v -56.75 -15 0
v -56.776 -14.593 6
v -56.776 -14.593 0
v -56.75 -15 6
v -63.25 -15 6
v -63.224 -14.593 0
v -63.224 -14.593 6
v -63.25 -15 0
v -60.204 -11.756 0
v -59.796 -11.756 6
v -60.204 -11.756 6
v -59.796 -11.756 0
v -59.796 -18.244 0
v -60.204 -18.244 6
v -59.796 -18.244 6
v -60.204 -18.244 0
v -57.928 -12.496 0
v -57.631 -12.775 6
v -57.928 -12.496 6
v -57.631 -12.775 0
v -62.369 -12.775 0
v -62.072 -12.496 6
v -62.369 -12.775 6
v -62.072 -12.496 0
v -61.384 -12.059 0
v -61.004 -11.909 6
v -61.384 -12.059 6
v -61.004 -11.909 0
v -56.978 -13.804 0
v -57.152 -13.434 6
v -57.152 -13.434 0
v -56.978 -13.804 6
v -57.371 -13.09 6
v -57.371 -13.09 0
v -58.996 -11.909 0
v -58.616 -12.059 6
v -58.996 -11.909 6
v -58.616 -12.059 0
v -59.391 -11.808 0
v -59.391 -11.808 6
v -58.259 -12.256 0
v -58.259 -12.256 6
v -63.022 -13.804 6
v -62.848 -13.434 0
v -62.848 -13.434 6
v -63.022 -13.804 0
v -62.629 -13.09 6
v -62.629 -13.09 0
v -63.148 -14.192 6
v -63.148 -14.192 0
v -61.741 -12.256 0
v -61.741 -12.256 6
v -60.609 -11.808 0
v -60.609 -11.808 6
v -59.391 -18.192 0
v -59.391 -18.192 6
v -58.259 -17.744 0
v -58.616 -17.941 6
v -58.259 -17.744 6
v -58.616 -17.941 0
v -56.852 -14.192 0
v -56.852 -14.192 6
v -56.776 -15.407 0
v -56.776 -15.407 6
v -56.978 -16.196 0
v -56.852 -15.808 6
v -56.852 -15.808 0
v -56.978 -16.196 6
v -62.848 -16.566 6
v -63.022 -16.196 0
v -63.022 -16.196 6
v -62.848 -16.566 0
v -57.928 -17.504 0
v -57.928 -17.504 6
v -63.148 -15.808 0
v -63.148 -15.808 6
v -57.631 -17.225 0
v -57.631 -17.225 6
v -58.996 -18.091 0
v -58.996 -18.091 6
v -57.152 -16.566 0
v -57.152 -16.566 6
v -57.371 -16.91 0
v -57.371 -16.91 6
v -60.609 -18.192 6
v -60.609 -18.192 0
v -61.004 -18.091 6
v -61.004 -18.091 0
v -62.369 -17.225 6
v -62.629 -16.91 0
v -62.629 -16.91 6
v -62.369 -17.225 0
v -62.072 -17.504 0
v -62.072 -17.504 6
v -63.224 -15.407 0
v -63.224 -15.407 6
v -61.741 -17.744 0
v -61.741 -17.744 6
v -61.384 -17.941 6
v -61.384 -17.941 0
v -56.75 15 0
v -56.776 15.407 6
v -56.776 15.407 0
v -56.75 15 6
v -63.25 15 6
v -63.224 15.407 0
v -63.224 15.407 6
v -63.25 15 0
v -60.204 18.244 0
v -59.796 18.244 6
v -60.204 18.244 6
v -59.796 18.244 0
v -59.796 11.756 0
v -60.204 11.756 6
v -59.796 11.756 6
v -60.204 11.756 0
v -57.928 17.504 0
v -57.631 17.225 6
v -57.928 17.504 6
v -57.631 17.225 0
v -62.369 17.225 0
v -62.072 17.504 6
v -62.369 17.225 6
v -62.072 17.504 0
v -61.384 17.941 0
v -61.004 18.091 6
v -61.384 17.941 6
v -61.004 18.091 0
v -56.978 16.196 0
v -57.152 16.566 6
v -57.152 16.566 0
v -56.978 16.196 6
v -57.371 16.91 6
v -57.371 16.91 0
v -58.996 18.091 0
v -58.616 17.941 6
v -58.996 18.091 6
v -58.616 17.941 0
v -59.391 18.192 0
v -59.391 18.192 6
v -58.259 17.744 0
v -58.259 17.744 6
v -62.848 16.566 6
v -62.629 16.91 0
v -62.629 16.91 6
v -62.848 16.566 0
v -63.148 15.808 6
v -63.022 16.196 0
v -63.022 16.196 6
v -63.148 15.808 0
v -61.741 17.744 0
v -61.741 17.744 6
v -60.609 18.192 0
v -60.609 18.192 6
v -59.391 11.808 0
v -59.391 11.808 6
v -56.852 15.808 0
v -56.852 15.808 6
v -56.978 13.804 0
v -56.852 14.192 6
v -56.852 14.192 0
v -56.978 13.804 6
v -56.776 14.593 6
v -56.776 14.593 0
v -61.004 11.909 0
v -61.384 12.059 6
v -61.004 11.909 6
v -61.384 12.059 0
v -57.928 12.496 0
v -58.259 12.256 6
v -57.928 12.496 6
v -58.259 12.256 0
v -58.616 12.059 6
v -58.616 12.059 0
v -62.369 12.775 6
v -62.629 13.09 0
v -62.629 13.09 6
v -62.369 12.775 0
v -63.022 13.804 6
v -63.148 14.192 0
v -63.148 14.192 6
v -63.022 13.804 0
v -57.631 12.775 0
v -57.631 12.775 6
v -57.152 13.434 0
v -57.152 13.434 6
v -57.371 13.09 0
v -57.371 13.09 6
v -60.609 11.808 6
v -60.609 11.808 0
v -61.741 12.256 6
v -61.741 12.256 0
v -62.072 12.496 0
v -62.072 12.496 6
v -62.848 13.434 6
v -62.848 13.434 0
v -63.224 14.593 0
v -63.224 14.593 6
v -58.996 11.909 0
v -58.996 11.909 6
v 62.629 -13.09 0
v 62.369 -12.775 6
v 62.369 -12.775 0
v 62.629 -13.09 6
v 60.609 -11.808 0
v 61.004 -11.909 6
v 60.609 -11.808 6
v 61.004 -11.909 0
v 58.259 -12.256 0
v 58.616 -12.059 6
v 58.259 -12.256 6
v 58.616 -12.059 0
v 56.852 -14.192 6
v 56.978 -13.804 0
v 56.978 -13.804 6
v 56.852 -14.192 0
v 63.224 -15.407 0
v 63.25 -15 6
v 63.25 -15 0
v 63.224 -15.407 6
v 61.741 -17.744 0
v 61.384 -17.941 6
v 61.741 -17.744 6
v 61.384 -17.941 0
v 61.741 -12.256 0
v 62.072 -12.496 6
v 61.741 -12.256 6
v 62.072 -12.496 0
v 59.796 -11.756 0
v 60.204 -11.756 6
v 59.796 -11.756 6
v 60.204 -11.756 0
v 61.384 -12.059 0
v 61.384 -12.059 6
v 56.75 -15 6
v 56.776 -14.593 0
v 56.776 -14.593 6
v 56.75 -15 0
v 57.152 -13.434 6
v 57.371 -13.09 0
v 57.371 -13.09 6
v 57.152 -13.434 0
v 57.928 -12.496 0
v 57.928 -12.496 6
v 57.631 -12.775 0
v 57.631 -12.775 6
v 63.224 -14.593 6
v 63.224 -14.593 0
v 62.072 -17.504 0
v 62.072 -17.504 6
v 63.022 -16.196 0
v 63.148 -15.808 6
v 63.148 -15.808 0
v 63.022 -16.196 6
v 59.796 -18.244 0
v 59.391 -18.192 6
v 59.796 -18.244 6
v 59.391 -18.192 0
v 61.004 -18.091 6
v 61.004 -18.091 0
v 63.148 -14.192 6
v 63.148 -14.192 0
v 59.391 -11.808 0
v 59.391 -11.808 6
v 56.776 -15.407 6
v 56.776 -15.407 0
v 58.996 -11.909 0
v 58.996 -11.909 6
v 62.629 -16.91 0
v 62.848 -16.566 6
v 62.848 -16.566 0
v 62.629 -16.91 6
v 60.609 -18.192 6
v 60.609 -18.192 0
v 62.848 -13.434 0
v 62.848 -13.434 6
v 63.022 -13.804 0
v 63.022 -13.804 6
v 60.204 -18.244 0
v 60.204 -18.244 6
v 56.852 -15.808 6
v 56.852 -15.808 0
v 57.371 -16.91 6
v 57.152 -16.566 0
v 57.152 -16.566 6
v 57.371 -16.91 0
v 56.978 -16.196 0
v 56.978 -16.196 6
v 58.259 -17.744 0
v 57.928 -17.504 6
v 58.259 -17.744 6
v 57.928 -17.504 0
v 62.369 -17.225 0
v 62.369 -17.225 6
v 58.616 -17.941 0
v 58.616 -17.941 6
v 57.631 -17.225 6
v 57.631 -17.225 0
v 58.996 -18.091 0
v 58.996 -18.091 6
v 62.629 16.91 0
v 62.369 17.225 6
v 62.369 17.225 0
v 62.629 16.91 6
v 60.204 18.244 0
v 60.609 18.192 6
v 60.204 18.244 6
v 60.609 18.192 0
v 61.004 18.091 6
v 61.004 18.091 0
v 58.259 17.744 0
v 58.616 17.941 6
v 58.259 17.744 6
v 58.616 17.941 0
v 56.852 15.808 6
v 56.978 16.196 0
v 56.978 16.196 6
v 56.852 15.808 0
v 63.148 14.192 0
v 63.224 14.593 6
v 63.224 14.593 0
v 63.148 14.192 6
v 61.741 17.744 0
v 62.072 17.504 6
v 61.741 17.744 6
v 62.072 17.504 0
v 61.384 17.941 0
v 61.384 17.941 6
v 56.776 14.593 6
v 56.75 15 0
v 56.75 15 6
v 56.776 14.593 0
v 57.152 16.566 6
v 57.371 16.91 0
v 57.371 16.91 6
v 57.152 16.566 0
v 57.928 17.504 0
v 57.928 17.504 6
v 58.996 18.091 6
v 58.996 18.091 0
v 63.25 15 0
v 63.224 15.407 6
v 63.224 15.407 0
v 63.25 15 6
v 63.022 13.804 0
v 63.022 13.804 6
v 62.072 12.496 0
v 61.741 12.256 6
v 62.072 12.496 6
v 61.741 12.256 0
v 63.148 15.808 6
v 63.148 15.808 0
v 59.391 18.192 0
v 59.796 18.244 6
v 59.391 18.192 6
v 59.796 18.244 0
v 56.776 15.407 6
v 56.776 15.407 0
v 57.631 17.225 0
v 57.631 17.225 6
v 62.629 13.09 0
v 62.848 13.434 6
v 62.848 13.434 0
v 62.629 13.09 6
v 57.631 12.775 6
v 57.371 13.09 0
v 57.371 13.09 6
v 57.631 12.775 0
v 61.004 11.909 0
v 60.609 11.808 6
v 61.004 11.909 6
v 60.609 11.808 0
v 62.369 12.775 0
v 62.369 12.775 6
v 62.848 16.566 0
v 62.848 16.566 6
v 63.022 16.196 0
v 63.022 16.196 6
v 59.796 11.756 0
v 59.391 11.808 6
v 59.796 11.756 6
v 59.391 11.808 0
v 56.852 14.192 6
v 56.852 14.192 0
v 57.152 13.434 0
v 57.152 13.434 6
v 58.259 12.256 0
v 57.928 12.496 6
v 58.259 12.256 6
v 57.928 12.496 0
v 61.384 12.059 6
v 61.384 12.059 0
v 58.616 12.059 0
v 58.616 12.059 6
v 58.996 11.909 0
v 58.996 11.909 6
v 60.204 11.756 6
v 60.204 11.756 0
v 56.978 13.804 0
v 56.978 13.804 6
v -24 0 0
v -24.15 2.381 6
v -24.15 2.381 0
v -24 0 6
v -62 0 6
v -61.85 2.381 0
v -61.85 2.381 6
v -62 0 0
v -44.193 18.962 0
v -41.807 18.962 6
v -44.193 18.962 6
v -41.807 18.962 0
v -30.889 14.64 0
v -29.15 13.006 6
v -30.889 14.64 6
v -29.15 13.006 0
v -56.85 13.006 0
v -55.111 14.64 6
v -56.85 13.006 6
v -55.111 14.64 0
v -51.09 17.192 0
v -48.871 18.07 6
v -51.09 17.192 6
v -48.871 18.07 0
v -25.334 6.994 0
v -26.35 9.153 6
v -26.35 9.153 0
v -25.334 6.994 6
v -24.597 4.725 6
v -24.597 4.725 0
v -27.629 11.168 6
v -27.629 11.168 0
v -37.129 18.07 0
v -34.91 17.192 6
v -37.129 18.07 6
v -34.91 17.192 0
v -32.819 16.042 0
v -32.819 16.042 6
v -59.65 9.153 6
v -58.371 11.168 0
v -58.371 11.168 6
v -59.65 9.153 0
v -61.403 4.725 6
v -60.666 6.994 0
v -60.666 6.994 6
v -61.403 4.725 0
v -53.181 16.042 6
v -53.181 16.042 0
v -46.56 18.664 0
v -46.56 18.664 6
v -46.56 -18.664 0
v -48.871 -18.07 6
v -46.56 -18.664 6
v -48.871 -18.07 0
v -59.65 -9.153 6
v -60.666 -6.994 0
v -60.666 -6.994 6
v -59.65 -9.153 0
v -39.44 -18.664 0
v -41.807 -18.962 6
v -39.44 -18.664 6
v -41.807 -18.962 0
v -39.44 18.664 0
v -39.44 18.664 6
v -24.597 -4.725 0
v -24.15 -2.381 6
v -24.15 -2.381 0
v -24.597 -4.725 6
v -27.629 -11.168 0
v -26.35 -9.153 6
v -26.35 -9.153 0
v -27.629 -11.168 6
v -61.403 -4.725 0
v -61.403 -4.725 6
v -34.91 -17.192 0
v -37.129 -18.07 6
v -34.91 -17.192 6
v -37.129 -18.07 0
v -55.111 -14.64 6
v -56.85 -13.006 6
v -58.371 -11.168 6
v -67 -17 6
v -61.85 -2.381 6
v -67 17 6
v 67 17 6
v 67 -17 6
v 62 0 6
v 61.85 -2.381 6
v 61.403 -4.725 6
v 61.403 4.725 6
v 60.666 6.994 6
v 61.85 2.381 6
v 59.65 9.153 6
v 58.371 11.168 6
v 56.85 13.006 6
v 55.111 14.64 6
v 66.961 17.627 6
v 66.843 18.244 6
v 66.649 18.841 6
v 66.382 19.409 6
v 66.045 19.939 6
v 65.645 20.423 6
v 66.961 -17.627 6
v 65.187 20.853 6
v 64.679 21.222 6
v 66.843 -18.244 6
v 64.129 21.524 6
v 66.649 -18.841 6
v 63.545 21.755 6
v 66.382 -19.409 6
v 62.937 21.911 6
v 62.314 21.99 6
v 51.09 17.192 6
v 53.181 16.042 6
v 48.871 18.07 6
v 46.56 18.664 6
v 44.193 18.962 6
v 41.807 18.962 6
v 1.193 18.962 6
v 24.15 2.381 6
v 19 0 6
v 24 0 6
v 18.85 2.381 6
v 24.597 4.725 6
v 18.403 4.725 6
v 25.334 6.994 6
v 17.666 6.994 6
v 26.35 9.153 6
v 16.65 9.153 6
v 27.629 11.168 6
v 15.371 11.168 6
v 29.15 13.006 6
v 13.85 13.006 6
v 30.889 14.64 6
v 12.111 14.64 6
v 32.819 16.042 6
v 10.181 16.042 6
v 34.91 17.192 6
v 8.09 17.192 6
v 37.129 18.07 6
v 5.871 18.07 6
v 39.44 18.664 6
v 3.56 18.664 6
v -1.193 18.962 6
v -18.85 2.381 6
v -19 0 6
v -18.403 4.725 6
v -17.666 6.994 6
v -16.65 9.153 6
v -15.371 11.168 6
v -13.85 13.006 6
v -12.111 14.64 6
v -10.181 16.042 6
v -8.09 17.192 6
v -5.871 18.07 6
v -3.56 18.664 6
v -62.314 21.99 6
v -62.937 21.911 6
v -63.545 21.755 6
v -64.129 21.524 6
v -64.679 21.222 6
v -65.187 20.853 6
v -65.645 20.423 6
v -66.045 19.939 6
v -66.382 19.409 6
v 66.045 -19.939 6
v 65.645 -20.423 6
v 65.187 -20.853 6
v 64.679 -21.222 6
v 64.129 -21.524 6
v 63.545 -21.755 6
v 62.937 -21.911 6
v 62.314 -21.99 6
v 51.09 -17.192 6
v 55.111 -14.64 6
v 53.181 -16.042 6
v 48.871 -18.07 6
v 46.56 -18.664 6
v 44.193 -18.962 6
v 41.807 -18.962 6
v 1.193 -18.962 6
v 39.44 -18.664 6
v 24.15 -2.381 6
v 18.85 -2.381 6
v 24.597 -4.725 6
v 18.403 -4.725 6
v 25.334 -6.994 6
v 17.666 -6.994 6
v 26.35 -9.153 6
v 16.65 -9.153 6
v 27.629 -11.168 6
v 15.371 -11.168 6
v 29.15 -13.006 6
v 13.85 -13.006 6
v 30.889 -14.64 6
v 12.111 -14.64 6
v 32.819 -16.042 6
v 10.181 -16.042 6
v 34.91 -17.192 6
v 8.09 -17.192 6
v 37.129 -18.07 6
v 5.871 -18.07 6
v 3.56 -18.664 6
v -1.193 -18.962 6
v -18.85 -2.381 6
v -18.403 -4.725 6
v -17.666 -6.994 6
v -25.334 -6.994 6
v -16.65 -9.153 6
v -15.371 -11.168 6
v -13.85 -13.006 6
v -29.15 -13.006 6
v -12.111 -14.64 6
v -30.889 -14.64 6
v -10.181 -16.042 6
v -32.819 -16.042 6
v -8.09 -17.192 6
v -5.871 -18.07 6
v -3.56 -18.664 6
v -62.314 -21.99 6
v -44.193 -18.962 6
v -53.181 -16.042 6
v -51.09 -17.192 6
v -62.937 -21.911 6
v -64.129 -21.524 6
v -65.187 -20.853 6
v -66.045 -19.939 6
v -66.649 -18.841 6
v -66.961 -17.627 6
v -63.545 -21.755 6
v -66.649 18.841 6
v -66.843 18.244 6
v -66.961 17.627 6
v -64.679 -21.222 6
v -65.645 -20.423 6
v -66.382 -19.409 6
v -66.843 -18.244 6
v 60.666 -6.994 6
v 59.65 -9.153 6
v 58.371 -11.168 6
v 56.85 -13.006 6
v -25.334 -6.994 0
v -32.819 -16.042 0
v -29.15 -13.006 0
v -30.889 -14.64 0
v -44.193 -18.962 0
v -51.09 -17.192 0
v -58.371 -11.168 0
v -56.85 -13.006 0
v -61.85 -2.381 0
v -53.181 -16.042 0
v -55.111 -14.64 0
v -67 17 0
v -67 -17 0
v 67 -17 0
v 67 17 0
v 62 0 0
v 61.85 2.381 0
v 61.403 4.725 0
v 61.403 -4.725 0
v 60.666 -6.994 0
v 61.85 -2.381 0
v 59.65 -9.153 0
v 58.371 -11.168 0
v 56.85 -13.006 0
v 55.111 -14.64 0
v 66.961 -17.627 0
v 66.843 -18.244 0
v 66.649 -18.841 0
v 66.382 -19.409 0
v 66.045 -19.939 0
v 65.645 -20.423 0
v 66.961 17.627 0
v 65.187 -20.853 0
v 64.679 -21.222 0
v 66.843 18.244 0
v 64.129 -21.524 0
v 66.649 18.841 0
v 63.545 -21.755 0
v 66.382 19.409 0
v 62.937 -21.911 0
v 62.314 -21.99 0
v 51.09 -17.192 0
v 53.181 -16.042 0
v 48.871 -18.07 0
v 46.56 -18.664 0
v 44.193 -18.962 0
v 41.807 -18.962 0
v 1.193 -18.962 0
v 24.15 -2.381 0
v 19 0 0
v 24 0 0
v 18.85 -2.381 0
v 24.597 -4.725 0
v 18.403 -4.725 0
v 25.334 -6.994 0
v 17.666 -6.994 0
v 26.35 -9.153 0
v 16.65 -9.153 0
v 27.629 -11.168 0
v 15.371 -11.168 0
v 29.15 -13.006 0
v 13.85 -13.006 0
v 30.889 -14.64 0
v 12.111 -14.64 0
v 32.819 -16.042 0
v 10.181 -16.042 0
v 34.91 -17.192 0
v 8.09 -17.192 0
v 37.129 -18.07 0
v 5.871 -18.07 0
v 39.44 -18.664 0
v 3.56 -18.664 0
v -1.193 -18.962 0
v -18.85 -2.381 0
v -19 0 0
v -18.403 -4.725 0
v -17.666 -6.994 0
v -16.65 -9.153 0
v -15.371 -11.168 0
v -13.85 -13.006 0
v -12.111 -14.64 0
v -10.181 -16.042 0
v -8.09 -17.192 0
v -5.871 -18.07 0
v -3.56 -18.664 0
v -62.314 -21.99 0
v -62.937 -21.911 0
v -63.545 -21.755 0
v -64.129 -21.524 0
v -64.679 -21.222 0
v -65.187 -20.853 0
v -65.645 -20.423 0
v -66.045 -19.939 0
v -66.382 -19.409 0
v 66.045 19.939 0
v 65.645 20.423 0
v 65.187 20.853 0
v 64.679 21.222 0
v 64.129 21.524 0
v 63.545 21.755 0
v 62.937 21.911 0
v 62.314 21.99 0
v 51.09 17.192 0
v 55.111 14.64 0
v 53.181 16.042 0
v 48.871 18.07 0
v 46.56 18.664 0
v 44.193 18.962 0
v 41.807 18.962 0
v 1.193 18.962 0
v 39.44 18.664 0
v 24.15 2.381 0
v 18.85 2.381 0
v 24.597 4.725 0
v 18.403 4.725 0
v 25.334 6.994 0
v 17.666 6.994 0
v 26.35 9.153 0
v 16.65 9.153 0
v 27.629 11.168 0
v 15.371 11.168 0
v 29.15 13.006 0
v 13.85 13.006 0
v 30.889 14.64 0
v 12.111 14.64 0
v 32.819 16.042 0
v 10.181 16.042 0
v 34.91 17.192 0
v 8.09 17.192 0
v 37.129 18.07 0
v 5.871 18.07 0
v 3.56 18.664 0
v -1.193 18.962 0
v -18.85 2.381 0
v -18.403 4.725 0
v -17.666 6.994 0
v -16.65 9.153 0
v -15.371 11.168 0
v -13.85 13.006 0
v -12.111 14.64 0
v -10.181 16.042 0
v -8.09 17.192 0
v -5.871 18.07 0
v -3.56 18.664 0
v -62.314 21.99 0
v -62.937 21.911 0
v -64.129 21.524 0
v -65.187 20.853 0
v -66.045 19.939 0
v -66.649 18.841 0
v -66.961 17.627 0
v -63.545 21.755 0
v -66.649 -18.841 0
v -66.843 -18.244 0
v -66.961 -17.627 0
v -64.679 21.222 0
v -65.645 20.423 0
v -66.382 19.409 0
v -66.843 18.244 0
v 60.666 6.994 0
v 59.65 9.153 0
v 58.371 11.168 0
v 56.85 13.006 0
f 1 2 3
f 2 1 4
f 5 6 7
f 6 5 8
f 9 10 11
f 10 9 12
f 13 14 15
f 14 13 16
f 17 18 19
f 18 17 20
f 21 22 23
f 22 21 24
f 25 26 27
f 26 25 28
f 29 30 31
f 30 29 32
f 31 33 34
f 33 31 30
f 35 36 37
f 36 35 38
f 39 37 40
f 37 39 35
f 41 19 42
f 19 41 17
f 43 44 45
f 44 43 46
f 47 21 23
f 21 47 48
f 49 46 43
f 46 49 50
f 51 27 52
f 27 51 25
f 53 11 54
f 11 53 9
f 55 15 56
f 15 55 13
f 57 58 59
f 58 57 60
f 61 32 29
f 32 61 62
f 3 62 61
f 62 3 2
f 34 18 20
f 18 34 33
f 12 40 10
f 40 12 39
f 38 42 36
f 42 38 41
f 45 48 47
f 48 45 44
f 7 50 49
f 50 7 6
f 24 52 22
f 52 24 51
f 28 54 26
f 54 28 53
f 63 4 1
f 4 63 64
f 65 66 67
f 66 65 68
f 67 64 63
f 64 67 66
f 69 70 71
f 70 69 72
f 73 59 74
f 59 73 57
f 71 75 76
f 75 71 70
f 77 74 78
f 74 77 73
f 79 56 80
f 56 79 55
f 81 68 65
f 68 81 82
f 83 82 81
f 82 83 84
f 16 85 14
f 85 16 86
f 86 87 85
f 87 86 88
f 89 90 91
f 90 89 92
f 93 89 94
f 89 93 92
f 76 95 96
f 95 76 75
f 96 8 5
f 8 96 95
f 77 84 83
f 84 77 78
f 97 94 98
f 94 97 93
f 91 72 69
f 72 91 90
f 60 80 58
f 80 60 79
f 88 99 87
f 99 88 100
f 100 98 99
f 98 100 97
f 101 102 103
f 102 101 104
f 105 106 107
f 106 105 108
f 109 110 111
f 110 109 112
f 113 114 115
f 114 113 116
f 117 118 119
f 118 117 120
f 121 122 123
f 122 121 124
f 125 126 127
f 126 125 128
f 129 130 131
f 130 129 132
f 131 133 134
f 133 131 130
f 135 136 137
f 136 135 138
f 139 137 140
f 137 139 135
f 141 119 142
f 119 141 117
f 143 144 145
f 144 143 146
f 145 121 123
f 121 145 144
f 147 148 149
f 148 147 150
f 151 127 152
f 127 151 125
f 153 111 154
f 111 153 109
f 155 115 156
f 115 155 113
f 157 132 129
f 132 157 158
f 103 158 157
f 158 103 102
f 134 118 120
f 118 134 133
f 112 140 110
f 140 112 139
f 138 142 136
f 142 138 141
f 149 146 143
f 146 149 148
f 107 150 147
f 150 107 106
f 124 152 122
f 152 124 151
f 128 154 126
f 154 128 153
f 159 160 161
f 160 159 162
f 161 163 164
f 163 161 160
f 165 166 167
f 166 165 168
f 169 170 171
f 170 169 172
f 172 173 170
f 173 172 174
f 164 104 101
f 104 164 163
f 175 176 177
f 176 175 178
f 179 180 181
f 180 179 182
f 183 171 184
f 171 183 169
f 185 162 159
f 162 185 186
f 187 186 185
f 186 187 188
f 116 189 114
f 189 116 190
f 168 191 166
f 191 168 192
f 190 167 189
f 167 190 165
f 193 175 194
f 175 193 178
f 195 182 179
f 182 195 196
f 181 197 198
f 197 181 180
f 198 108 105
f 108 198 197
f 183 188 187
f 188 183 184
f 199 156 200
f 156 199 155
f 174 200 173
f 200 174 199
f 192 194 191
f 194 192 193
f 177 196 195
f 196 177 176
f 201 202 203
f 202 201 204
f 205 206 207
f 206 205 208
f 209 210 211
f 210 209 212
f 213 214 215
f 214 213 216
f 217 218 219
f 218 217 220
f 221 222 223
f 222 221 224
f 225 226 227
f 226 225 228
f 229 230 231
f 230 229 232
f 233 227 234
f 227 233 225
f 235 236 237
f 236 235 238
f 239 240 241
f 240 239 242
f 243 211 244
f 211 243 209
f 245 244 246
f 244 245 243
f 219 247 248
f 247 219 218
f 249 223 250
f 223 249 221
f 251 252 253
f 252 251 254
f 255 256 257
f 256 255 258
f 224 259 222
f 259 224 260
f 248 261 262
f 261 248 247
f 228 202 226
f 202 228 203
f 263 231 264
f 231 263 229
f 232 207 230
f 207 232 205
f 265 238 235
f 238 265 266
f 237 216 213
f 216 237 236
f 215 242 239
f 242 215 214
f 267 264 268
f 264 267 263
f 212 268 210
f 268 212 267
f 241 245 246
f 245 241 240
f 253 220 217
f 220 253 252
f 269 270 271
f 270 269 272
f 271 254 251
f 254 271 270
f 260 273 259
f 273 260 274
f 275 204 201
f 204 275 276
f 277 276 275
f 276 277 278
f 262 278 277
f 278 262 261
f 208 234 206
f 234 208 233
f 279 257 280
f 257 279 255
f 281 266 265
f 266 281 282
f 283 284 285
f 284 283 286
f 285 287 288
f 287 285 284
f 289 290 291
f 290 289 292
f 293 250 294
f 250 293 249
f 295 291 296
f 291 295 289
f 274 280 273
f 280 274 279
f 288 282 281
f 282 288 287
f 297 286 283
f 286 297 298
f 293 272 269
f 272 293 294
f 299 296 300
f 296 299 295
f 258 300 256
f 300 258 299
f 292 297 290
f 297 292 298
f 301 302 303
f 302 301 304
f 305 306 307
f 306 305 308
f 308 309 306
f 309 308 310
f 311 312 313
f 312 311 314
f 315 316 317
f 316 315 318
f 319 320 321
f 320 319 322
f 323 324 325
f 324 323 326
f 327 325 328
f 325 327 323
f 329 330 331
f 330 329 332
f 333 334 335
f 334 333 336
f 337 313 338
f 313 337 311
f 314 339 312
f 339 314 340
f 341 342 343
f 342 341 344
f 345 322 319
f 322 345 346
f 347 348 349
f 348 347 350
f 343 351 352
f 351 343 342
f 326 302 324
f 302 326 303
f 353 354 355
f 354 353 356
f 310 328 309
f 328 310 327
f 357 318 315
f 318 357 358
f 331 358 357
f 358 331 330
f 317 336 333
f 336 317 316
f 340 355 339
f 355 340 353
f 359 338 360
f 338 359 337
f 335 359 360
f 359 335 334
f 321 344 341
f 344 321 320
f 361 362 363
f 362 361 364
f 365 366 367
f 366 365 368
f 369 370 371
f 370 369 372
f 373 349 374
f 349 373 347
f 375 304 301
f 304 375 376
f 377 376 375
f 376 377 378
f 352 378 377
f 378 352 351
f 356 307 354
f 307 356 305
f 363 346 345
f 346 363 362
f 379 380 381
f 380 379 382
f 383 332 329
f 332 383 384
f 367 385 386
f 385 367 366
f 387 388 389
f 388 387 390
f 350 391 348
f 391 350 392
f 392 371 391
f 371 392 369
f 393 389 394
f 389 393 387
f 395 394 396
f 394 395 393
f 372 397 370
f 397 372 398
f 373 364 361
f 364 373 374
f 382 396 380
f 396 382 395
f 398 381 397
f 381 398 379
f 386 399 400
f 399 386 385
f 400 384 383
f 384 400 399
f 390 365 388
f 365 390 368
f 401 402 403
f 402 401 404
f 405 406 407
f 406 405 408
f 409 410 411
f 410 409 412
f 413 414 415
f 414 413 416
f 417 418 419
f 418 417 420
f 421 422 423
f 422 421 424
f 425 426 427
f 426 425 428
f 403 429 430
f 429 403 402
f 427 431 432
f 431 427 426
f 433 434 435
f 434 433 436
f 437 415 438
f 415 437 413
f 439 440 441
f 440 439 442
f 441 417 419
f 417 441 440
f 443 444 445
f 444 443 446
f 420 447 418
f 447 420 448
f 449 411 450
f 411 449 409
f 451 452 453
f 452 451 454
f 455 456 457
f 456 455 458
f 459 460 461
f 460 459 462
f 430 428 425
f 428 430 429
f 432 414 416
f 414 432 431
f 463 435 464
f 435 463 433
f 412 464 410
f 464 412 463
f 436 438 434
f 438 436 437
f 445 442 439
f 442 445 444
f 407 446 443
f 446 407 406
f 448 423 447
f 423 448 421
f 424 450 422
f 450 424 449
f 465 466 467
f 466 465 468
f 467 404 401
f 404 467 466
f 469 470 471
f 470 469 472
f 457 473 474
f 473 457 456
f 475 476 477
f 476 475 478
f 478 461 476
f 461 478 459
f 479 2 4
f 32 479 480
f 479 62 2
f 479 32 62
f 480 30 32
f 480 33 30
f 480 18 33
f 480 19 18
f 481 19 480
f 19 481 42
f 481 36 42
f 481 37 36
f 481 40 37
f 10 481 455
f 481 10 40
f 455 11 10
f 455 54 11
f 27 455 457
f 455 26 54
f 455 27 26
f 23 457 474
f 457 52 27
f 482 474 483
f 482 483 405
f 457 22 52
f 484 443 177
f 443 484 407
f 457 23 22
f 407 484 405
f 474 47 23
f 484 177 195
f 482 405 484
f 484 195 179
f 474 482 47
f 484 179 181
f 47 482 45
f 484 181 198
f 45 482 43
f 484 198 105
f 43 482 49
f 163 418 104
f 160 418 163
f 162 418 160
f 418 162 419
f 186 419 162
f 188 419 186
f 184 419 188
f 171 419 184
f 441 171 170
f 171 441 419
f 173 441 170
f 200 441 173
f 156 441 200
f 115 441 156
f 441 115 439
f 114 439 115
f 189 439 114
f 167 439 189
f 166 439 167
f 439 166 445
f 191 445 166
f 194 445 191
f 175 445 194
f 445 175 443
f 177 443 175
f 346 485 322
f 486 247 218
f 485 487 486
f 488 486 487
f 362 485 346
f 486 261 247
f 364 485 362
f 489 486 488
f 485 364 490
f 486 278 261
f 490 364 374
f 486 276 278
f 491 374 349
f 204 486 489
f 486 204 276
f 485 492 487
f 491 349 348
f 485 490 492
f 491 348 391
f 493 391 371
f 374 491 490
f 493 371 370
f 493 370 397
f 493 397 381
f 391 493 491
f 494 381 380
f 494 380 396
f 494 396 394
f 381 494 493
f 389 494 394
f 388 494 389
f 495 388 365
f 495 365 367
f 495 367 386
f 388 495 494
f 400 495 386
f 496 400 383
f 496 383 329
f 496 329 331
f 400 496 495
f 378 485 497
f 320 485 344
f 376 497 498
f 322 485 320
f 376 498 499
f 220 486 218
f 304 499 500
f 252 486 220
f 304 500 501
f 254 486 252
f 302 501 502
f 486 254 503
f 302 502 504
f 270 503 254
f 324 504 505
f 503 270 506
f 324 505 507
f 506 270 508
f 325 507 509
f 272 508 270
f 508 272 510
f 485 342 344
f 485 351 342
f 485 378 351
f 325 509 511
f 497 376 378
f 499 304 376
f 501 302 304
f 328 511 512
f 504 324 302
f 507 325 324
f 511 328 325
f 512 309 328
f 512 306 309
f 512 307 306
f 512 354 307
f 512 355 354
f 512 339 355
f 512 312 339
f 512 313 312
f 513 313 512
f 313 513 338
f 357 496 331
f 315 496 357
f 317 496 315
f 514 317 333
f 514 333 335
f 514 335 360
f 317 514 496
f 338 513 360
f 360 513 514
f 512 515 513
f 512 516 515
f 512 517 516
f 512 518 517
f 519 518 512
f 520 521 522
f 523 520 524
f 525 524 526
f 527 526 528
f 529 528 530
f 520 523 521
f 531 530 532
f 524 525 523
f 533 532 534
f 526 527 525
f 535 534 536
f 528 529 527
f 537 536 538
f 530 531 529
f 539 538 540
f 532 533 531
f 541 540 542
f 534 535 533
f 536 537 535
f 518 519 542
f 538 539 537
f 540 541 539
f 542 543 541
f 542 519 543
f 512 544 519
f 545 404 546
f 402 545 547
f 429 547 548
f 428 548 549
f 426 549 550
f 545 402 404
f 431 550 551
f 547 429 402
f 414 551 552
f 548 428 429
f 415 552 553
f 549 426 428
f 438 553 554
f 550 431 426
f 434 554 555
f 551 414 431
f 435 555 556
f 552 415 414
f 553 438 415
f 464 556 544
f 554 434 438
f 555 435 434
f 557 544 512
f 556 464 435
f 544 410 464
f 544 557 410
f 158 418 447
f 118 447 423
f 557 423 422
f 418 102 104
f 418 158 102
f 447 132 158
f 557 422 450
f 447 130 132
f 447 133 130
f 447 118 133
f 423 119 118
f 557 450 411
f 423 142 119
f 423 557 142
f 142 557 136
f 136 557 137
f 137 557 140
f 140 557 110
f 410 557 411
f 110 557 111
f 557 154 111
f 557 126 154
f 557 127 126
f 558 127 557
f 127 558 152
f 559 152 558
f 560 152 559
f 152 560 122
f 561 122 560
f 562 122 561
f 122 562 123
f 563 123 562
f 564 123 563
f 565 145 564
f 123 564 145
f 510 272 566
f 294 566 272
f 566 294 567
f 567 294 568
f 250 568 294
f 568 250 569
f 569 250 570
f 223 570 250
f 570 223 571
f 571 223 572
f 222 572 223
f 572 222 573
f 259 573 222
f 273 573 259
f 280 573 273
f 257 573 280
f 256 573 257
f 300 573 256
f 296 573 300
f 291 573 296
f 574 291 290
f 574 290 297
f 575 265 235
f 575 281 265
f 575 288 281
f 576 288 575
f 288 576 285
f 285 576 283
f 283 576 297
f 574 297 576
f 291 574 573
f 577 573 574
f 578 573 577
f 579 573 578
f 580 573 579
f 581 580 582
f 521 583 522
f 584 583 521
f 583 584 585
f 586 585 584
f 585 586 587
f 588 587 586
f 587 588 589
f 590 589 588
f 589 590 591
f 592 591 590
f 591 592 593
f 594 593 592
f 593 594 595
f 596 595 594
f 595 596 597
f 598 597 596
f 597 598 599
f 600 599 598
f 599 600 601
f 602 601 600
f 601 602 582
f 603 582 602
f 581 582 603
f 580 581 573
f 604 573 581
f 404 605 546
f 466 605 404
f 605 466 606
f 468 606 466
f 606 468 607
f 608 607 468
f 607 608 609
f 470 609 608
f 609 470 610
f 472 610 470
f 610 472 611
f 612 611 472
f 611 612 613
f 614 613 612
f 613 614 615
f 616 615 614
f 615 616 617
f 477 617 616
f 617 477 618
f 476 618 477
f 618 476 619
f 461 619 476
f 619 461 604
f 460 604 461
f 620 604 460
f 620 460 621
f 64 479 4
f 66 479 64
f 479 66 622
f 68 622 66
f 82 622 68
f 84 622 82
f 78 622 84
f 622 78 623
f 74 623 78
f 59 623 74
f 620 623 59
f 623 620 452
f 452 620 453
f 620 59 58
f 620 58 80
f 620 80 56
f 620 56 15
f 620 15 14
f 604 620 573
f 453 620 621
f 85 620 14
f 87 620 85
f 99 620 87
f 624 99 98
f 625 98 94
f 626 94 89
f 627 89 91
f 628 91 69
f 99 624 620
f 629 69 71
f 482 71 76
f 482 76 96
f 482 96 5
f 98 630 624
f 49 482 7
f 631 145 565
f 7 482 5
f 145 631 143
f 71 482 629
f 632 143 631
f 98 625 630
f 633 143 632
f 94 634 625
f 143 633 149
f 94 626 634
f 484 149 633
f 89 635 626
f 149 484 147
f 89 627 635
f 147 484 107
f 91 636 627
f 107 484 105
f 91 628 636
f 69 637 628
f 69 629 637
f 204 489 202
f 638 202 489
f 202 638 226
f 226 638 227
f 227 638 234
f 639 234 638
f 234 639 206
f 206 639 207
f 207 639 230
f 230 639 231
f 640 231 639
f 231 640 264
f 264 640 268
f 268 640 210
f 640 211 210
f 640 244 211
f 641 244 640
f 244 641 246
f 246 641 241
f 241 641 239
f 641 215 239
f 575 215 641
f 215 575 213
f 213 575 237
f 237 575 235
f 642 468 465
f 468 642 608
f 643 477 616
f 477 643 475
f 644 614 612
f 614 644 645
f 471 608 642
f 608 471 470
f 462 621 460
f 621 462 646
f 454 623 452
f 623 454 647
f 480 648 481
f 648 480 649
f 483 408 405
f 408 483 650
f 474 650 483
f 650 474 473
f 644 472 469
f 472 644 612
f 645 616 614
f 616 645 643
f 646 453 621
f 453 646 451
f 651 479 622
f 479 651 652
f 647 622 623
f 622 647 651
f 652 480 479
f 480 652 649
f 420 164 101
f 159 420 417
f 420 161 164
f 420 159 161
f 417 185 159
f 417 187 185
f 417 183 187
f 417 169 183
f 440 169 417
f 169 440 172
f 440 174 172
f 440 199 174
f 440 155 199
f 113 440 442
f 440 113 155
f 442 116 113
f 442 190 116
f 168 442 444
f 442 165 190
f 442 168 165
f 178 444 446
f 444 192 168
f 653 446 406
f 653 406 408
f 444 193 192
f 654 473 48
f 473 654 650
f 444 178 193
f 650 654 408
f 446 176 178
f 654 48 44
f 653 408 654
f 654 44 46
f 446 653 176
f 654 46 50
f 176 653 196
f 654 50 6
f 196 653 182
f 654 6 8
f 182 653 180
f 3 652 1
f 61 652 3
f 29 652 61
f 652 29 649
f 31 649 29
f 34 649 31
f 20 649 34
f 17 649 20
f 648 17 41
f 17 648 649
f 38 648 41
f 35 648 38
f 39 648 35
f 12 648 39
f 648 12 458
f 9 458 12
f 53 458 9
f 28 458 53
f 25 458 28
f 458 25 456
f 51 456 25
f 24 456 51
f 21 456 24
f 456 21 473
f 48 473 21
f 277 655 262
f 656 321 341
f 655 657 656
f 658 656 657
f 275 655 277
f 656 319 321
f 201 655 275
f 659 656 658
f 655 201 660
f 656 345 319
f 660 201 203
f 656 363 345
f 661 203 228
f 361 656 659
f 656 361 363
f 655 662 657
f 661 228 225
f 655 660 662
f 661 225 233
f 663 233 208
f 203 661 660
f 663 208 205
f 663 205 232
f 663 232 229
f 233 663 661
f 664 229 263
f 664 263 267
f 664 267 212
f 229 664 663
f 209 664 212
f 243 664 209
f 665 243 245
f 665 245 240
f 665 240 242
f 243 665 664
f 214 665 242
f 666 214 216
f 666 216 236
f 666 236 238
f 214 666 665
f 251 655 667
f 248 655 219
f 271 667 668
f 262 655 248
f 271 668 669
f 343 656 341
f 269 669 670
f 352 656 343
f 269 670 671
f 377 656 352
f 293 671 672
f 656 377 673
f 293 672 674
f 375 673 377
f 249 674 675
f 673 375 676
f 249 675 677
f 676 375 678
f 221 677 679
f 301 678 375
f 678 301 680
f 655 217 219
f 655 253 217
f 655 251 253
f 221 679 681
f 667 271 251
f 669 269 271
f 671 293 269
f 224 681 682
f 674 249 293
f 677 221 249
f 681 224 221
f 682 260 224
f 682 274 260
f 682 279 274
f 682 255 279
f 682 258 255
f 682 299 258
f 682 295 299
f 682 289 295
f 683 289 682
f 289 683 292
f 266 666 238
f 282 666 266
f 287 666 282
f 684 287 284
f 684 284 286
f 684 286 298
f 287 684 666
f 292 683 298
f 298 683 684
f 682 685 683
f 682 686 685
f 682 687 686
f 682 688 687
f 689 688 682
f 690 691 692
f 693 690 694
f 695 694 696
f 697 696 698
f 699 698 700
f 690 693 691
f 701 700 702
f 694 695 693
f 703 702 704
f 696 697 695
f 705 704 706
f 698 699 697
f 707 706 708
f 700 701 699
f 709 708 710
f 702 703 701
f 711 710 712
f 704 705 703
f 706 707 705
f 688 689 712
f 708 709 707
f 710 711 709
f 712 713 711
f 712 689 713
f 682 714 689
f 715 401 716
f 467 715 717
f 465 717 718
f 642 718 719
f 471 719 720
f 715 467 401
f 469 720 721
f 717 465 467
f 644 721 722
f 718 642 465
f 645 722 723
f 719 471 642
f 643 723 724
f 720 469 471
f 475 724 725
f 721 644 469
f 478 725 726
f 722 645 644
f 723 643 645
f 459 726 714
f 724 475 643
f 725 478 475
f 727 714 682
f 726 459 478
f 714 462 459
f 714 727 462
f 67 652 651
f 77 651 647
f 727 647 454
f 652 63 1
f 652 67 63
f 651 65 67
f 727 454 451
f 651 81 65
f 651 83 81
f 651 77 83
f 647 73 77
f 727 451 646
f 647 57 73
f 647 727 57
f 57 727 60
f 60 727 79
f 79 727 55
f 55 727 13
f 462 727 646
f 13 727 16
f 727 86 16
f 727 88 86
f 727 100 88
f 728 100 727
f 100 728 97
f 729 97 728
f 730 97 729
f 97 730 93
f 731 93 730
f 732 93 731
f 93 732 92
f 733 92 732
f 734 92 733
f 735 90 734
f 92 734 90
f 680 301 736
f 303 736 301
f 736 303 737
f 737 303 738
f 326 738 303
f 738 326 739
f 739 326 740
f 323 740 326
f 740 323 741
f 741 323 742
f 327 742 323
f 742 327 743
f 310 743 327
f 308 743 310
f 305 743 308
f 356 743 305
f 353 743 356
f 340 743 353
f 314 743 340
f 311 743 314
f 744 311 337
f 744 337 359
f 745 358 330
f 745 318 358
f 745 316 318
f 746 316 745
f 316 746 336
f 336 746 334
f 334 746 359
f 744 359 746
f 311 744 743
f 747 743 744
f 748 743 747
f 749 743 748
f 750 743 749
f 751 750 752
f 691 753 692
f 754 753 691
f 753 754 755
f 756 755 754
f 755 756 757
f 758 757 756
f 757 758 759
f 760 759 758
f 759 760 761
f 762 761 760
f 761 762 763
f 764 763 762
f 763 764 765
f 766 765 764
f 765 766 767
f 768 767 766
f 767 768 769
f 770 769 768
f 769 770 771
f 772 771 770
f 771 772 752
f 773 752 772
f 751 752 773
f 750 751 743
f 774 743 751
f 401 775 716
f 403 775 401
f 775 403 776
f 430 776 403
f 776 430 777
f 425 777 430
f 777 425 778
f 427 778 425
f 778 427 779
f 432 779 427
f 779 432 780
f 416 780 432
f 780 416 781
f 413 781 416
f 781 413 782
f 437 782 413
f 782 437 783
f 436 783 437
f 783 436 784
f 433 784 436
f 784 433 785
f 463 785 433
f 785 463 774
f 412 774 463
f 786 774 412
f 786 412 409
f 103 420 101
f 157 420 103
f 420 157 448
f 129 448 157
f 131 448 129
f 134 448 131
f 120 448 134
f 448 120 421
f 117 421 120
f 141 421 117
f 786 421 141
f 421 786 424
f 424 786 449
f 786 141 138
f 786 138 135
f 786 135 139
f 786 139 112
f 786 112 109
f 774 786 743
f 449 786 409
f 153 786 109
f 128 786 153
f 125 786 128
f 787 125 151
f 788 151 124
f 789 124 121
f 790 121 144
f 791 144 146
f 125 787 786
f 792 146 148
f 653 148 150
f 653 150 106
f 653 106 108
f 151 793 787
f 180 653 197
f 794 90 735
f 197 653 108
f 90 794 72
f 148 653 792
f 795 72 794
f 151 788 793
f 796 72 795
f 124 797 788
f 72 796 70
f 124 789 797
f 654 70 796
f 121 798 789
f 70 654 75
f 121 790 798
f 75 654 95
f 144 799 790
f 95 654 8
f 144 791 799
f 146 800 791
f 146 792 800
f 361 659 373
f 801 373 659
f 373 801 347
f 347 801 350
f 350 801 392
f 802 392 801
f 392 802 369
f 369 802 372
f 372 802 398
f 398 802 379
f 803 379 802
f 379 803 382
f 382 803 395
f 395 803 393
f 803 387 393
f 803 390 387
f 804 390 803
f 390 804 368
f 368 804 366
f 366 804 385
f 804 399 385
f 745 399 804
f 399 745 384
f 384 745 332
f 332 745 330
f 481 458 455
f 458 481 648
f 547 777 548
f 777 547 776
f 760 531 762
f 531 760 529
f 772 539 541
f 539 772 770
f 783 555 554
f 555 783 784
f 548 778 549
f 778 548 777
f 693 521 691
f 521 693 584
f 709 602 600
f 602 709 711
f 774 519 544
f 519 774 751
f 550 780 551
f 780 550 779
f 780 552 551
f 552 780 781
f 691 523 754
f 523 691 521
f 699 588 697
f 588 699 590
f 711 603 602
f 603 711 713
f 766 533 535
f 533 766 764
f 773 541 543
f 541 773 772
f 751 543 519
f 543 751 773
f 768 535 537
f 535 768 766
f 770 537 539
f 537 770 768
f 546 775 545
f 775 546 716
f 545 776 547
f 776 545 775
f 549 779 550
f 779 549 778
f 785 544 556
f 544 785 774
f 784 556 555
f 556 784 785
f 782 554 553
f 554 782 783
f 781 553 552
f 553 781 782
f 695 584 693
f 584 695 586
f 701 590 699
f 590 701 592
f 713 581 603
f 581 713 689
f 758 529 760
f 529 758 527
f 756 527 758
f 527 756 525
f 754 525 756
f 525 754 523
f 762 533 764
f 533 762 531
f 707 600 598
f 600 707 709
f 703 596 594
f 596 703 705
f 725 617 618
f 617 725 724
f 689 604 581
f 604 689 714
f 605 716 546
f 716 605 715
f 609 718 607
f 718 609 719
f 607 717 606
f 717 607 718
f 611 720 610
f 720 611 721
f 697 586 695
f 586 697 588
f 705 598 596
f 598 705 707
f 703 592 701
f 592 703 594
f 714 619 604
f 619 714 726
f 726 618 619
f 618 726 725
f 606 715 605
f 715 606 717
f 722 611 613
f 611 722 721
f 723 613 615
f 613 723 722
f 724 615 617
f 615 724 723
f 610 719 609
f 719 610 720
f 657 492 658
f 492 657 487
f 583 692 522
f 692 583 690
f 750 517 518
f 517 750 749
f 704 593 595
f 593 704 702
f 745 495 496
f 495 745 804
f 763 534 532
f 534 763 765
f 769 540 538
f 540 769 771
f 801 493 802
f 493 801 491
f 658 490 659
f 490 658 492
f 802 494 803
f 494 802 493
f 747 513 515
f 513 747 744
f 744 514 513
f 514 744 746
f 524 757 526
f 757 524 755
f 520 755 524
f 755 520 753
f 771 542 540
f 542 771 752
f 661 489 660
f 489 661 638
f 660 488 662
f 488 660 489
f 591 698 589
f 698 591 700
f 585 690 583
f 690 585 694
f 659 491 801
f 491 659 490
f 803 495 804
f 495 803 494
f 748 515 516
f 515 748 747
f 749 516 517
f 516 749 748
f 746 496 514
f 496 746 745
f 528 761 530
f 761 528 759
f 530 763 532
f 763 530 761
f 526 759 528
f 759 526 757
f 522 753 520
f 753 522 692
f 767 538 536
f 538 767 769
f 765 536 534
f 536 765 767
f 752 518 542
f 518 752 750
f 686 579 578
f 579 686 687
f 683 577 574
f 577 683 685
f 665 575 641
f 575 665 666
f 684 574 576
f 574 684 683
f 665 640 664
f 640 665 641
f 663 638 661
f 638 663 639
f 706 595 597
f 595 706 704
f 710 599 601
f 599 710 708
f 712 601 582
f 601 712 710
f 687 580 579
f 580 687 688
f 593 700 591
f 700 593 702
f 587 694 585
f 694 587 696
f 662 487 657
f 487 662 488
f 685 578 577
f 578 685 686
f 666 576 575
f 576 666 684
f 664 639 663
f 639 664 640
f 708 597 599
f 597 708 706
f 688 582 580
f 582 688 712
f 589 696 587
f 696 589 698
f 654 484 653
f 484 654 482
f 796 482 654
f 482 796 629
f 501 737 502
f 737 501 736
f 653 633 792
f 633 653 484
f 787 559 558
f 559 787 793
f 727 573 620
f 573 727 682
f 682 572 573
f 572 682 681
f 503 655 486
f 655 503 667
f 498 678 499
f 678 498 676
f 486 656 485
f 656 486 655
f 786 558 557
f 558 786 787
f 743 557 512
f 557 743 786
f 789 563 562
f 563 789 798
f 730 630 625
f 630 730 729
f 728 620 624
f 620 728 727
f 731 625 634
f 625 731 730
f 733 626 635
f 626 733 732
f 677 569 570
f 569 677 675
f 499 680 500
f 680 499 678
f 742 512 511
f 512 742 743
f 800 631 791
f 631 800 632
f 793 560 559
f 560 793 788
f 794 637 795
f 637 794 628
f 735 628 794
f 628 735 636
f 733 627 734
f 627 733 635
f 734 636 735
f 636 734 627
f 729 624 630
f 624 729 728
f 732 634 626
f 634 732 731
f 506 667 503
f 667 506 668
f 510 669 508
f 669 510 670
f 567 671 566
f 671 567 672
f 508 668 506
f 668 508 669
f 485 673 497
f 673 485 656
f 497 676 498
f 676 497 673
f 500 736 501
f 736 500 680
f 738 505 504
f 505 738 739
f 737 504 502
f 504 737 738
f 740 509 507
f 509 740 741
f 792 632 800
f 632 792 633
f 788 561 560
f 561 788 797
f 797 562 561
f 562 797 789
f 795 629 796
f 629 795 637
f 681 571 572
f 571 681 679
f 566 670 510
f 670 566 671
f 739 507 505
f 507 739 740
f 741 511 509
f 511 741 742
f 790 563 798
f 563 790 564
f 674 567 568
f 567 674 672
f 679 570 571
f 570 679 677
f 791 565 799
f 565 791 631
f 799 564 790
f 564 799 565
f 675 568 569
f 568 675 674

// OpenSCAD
$fn = 50;


difference() {
	union() {
		hull() {
			translate(v = [-62.0000000000, 17.0000000000, 0]) {
				cylinder(h = 6, r = 5);
			}
			translate(v = [62.0000000000, 17.0000000000, 0]) {
				cylinder(h = 6, r = 5);
			}
			translate(v = [-62.0000000000, -17.0000000000, 0]) {
				cylinder(h = 6, r = 5);
			}
			translate(v = [62.0000000000, -17.0000000000, 0]) {
				cylinder(h = 6, r = 5);
			}
		}
	}
	union() {
		#translate(v = [-60.0000000000, -15.0000000000, -100.0000000000]) {
			cylinder(h = 200, r = 3.2500000000);
		}
		#translate(v = [-60.0000000000, 15.0000000000, -100.0000000000]) {
			cylinder(h = 200, r = 3.2500000000);
		}
		#translate(v = [60.0000000000, -15.0000000000, -100.0000000000]) {
			cylinder(h = 200, r = 3.2500000000);
		}
		#translate(v = [60.0000000000, 15.0000000000, -100.0000000000]) {
			cylinder(h = 200, r = 3.2500000000);
		}
		#translate(v = [-43.0000000000, 0, 0]) {
			cylinder(h = 6, r = 19.0000000000);
		}
		#cylinder(h = 6, r = 19.0000000000);
		#translate(v = [43.0000000000, 0, 0]) {
			cylinder(h = 6, r = 19.0000000000);
		}
	}
}
